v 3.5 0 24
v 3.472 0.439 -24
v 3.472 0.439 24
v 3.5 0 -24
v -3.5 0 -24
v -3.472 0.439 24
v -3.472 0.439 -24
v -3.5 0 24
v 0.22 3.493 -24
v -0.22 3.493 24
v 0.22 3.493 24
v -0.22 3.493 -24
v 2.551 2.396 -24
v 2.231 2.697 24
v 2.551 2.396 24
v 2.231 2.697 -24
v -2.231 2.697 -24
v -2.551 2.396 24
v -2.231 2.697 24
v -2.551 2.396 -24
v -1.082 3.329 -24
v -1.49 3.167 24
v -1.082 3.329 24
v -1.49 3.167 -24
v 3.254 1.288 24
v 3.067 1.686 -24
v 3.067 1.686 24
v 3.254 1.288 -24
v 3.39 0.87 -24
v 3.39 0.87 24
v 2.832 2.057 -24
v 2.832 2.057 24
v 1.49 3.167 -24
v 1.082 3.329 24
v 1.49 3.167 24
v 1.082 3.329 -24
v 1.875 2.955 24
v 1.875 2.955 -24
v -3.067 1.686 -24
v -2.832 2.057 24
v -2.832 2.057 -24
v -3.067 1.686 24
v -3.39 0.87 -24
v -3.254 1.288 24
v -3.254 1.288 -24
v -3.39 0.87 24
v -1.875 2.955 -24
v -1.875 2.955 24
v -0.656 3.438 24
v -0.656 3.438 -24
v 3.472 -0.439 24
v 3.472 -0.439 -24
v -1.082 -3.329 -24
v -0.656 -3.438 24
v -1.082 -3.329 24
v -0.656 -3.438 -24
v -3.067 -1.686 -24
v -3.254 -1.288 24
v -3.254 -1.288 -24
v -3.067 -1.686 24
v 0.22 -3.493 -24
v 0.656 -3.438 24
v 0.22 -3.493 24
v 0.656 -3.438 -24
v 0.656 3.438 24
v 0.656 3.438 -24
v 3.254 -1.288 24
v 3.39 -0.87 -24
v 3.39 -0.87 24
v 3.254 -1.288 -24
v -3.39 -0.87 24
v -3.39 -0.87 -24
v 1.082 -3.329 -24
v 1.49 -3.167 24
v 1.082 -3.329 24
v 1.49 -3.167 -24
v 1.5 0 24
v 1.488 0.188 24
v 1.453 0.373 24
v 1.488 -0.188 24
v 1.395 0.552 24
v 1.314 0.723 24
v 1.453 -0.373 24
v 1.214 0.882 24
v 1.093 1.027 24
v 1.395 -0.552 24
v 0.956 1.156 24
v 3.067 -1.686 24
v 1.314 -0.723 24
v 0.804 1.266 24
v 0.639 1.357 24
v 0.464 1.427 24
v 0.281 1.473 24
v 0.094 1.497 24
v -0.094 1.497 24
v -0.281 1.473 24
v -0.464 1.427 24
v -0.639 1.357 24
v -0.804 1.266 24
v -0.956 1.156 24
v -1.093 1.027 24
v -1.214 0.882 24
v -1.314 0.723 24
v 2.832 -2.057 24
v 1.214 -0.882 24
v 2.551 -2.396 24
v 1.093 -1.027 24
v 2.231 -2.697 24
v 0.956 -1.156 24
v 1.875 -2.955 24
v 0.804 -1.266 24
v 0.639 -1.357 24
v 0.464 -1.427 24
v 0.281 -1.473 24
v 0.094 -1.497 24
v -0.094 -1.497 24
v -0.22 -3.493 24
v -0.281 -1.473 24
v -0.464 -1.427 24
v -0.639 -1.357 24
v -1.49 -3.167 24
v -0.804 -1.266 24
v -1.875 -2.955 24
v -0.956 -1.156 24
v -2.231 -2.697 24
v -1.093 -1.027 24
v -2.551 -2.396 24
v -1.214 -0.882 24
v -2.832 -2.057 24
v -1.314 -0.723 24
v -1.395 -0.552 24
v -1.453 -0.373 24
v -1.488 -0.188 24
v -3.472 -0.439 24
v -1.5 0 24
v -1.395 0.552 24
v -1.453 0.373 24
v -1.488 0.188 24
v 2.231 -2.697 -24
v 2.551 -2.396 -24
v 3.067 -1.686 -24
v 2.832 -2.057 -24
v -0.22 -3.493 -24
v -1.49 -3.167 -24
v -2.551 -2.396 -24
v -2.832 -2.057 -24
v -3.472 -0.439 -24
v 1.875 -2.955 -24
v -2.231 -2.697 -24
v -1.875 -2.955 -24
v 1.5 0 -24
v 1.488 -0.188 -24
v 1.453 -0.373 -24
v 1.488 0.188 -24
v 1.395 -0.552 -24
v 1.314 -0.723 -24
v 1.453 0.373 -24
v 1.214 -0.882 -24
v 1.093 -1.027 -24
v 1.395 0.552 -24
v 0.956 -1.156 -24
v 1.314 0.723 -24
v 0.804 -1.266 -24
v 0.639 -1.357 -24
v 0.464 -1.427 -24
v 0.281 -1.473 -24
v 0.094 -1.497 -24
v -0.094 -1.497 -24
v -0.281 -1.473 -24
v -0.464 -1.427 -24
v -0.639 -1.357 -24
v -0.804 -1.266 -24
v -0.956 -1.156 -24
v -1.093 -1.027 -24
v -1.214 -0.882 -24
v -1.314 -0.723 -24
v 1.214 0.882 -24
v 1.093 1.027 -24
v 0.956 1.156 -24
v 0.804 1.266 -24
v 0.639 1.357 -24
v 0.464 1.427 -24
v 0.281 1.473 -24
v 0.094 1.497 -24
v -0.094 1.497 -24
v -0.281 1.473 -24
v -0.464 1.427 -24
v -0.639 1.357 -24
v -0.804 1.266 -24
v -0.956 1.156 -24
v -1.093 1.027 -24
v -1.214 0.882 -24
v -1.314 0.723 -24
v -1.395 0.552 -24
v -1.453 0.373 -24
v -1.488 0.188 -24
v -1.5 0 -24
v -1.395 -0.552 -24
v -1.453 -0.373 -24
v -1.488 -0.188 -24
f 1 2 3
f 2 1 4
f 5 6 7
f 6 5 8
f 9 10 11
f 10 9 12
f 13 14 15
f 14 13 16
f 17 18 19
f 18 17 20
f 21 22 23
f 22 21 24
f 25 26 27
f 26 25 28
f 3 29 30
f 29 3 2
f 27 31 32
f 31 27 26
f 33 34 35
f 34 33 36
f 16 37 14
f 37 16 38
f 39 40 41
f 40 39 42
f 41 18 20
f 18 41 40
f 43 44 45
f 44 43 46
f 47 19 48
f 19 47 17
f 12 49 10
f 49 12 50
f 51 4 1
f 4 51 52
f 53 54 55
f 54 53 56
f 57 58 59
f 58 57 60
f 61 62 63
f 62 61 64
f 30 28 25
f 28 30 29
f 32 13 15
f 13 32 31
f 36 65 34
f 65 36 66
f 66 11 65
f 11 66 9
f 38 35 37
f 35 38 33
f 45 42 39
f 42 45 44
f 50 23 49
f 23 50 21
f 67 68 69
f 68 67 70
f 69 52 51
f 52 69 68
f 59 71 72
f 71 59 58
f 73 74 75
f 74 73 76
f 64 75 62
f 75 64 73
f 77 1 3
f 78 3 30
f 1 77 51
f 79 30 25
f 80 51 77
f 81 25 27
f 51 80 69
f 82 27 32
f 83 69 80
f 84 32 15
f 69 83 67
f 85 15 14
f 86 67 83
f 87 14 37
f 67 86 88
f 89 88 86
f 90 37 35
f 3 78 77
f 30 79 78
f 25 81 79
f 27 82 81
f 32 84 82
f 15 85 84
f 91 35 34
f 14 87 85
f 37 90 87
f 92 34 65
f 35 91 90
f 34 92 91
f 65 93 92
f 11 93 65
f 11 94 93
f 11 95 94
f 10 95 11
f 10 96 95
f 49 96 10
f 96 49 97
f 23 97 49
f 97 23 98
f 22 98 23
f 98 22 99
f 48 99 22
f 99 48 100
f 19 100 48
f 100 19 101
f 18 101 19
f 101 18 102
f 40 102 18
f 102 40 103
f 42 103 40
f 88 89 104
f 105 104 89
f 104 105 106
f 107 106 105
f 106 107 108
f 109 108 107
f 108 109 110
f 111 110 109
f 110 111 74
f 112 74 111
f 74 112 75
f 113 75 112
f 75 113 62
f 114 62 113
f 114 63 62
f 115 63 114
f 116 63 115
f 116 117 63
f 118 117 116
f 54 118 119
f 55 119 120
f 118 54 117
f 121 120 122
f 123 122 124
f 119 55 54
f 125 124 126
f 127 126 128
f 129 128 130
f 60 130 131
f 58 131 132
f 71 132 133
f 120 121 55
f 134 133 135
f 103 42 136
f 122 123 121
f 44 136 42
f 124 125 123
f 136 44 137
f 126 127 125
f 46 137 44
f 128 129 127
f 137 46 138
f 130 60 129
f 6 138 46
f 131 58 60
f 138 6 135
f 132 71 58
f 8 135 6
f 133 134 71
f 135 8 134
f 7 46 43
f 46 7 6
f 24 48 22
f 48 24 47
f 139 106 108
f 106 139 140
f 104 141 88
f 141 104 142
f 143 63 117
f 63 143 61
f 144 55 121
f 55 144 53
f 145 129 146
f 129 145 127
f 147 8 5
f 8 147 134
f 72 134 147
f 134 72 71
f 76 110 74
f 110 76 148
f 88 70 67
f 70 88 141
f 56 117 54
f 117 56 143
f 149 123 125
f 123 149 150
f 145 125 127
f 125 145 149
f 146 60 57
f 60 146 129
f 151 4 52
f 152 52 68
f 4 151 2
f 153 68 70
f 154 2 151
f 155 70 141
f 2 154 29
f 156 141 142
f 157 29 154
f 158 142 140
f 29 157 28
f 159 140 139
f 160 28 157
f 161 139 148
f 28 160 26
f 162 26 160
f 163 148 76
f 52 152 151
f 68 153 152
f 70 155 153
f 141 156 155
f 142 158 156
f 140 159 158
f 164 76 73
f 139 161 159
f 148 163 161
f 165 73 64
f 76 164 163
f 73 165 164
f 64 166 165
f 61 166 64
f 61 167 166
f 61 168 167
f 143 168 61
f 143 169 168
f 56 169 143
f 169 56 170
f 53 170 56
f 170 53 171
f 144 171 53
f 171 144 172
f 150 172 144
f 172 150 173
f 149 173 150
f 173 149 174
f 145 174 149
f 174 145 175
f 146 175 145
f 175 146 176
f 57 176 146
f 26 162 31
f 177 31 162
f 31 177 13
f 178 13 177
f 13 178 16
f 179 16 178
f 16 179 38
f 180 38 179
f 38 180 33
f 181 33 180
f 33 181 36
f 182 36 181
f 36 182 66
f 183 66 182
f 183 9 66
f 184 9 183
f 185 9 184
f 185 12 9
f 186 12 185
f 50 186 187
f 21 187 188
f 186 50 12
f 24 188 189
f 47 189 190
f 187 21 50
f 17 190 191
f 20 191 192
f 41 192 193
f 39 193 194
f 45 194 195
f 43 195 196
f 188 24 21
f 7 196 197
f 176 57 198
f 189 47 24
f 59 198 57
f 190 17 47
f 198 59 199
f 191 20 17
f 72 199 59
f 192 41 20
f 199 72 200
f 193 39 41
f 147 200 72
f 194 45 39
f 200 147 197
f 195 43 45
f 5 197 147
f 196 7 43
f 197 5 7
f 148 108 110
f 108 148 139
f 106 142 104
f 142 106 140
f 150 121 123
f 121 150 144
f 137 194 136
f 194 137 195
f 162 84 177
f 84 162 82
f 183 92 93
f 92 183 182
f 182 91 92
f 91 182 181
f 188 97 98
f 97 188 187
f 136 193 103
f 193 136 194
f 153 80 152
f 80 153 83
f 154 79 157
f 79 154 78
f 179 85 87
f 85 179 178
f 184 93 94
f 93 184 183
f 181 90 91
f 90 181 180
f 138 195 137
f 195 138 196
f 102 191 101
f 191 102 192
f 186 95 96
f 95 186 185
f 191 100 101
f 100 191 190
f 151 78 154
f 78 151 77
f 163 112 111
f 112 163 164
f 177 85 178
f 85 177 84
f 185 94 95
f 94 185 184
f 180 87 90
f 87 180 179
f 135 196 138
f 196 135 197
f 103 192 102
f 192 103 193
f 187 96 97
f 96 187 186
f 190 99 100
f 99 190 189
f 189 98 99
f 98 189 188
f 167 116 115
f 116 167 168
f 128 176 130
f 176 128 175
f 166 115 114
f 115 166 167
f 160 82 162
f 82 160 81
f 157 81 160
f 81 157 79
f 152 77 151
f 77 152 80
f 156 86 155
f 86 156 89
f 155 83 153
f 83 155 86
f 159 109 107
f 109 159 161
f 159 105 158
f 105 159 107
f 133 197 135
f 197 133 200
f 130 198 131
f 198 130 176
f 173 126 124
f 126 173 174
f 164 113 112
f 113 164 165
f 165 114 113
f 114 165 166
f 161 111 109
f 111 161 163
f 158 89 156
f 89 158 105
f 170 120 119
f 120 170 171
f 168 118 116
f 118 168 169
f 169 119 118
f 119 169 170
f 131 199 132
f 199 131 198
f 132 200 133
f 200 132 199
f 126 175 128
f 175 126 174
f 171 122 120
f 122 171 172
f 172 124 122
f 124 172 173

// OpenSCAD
$fn = 50;


difference() {
	union() {
		translate(v = [0, 0, -24.0000000000]) {
			cylinder(h = 48, r = 3.5000000000);
		}
	}
	union() {
		translate(v = [0, 0, -100.0000000000]) {
			cylinder(h = 200, r = 1.5000000000);
		}
	}
}
